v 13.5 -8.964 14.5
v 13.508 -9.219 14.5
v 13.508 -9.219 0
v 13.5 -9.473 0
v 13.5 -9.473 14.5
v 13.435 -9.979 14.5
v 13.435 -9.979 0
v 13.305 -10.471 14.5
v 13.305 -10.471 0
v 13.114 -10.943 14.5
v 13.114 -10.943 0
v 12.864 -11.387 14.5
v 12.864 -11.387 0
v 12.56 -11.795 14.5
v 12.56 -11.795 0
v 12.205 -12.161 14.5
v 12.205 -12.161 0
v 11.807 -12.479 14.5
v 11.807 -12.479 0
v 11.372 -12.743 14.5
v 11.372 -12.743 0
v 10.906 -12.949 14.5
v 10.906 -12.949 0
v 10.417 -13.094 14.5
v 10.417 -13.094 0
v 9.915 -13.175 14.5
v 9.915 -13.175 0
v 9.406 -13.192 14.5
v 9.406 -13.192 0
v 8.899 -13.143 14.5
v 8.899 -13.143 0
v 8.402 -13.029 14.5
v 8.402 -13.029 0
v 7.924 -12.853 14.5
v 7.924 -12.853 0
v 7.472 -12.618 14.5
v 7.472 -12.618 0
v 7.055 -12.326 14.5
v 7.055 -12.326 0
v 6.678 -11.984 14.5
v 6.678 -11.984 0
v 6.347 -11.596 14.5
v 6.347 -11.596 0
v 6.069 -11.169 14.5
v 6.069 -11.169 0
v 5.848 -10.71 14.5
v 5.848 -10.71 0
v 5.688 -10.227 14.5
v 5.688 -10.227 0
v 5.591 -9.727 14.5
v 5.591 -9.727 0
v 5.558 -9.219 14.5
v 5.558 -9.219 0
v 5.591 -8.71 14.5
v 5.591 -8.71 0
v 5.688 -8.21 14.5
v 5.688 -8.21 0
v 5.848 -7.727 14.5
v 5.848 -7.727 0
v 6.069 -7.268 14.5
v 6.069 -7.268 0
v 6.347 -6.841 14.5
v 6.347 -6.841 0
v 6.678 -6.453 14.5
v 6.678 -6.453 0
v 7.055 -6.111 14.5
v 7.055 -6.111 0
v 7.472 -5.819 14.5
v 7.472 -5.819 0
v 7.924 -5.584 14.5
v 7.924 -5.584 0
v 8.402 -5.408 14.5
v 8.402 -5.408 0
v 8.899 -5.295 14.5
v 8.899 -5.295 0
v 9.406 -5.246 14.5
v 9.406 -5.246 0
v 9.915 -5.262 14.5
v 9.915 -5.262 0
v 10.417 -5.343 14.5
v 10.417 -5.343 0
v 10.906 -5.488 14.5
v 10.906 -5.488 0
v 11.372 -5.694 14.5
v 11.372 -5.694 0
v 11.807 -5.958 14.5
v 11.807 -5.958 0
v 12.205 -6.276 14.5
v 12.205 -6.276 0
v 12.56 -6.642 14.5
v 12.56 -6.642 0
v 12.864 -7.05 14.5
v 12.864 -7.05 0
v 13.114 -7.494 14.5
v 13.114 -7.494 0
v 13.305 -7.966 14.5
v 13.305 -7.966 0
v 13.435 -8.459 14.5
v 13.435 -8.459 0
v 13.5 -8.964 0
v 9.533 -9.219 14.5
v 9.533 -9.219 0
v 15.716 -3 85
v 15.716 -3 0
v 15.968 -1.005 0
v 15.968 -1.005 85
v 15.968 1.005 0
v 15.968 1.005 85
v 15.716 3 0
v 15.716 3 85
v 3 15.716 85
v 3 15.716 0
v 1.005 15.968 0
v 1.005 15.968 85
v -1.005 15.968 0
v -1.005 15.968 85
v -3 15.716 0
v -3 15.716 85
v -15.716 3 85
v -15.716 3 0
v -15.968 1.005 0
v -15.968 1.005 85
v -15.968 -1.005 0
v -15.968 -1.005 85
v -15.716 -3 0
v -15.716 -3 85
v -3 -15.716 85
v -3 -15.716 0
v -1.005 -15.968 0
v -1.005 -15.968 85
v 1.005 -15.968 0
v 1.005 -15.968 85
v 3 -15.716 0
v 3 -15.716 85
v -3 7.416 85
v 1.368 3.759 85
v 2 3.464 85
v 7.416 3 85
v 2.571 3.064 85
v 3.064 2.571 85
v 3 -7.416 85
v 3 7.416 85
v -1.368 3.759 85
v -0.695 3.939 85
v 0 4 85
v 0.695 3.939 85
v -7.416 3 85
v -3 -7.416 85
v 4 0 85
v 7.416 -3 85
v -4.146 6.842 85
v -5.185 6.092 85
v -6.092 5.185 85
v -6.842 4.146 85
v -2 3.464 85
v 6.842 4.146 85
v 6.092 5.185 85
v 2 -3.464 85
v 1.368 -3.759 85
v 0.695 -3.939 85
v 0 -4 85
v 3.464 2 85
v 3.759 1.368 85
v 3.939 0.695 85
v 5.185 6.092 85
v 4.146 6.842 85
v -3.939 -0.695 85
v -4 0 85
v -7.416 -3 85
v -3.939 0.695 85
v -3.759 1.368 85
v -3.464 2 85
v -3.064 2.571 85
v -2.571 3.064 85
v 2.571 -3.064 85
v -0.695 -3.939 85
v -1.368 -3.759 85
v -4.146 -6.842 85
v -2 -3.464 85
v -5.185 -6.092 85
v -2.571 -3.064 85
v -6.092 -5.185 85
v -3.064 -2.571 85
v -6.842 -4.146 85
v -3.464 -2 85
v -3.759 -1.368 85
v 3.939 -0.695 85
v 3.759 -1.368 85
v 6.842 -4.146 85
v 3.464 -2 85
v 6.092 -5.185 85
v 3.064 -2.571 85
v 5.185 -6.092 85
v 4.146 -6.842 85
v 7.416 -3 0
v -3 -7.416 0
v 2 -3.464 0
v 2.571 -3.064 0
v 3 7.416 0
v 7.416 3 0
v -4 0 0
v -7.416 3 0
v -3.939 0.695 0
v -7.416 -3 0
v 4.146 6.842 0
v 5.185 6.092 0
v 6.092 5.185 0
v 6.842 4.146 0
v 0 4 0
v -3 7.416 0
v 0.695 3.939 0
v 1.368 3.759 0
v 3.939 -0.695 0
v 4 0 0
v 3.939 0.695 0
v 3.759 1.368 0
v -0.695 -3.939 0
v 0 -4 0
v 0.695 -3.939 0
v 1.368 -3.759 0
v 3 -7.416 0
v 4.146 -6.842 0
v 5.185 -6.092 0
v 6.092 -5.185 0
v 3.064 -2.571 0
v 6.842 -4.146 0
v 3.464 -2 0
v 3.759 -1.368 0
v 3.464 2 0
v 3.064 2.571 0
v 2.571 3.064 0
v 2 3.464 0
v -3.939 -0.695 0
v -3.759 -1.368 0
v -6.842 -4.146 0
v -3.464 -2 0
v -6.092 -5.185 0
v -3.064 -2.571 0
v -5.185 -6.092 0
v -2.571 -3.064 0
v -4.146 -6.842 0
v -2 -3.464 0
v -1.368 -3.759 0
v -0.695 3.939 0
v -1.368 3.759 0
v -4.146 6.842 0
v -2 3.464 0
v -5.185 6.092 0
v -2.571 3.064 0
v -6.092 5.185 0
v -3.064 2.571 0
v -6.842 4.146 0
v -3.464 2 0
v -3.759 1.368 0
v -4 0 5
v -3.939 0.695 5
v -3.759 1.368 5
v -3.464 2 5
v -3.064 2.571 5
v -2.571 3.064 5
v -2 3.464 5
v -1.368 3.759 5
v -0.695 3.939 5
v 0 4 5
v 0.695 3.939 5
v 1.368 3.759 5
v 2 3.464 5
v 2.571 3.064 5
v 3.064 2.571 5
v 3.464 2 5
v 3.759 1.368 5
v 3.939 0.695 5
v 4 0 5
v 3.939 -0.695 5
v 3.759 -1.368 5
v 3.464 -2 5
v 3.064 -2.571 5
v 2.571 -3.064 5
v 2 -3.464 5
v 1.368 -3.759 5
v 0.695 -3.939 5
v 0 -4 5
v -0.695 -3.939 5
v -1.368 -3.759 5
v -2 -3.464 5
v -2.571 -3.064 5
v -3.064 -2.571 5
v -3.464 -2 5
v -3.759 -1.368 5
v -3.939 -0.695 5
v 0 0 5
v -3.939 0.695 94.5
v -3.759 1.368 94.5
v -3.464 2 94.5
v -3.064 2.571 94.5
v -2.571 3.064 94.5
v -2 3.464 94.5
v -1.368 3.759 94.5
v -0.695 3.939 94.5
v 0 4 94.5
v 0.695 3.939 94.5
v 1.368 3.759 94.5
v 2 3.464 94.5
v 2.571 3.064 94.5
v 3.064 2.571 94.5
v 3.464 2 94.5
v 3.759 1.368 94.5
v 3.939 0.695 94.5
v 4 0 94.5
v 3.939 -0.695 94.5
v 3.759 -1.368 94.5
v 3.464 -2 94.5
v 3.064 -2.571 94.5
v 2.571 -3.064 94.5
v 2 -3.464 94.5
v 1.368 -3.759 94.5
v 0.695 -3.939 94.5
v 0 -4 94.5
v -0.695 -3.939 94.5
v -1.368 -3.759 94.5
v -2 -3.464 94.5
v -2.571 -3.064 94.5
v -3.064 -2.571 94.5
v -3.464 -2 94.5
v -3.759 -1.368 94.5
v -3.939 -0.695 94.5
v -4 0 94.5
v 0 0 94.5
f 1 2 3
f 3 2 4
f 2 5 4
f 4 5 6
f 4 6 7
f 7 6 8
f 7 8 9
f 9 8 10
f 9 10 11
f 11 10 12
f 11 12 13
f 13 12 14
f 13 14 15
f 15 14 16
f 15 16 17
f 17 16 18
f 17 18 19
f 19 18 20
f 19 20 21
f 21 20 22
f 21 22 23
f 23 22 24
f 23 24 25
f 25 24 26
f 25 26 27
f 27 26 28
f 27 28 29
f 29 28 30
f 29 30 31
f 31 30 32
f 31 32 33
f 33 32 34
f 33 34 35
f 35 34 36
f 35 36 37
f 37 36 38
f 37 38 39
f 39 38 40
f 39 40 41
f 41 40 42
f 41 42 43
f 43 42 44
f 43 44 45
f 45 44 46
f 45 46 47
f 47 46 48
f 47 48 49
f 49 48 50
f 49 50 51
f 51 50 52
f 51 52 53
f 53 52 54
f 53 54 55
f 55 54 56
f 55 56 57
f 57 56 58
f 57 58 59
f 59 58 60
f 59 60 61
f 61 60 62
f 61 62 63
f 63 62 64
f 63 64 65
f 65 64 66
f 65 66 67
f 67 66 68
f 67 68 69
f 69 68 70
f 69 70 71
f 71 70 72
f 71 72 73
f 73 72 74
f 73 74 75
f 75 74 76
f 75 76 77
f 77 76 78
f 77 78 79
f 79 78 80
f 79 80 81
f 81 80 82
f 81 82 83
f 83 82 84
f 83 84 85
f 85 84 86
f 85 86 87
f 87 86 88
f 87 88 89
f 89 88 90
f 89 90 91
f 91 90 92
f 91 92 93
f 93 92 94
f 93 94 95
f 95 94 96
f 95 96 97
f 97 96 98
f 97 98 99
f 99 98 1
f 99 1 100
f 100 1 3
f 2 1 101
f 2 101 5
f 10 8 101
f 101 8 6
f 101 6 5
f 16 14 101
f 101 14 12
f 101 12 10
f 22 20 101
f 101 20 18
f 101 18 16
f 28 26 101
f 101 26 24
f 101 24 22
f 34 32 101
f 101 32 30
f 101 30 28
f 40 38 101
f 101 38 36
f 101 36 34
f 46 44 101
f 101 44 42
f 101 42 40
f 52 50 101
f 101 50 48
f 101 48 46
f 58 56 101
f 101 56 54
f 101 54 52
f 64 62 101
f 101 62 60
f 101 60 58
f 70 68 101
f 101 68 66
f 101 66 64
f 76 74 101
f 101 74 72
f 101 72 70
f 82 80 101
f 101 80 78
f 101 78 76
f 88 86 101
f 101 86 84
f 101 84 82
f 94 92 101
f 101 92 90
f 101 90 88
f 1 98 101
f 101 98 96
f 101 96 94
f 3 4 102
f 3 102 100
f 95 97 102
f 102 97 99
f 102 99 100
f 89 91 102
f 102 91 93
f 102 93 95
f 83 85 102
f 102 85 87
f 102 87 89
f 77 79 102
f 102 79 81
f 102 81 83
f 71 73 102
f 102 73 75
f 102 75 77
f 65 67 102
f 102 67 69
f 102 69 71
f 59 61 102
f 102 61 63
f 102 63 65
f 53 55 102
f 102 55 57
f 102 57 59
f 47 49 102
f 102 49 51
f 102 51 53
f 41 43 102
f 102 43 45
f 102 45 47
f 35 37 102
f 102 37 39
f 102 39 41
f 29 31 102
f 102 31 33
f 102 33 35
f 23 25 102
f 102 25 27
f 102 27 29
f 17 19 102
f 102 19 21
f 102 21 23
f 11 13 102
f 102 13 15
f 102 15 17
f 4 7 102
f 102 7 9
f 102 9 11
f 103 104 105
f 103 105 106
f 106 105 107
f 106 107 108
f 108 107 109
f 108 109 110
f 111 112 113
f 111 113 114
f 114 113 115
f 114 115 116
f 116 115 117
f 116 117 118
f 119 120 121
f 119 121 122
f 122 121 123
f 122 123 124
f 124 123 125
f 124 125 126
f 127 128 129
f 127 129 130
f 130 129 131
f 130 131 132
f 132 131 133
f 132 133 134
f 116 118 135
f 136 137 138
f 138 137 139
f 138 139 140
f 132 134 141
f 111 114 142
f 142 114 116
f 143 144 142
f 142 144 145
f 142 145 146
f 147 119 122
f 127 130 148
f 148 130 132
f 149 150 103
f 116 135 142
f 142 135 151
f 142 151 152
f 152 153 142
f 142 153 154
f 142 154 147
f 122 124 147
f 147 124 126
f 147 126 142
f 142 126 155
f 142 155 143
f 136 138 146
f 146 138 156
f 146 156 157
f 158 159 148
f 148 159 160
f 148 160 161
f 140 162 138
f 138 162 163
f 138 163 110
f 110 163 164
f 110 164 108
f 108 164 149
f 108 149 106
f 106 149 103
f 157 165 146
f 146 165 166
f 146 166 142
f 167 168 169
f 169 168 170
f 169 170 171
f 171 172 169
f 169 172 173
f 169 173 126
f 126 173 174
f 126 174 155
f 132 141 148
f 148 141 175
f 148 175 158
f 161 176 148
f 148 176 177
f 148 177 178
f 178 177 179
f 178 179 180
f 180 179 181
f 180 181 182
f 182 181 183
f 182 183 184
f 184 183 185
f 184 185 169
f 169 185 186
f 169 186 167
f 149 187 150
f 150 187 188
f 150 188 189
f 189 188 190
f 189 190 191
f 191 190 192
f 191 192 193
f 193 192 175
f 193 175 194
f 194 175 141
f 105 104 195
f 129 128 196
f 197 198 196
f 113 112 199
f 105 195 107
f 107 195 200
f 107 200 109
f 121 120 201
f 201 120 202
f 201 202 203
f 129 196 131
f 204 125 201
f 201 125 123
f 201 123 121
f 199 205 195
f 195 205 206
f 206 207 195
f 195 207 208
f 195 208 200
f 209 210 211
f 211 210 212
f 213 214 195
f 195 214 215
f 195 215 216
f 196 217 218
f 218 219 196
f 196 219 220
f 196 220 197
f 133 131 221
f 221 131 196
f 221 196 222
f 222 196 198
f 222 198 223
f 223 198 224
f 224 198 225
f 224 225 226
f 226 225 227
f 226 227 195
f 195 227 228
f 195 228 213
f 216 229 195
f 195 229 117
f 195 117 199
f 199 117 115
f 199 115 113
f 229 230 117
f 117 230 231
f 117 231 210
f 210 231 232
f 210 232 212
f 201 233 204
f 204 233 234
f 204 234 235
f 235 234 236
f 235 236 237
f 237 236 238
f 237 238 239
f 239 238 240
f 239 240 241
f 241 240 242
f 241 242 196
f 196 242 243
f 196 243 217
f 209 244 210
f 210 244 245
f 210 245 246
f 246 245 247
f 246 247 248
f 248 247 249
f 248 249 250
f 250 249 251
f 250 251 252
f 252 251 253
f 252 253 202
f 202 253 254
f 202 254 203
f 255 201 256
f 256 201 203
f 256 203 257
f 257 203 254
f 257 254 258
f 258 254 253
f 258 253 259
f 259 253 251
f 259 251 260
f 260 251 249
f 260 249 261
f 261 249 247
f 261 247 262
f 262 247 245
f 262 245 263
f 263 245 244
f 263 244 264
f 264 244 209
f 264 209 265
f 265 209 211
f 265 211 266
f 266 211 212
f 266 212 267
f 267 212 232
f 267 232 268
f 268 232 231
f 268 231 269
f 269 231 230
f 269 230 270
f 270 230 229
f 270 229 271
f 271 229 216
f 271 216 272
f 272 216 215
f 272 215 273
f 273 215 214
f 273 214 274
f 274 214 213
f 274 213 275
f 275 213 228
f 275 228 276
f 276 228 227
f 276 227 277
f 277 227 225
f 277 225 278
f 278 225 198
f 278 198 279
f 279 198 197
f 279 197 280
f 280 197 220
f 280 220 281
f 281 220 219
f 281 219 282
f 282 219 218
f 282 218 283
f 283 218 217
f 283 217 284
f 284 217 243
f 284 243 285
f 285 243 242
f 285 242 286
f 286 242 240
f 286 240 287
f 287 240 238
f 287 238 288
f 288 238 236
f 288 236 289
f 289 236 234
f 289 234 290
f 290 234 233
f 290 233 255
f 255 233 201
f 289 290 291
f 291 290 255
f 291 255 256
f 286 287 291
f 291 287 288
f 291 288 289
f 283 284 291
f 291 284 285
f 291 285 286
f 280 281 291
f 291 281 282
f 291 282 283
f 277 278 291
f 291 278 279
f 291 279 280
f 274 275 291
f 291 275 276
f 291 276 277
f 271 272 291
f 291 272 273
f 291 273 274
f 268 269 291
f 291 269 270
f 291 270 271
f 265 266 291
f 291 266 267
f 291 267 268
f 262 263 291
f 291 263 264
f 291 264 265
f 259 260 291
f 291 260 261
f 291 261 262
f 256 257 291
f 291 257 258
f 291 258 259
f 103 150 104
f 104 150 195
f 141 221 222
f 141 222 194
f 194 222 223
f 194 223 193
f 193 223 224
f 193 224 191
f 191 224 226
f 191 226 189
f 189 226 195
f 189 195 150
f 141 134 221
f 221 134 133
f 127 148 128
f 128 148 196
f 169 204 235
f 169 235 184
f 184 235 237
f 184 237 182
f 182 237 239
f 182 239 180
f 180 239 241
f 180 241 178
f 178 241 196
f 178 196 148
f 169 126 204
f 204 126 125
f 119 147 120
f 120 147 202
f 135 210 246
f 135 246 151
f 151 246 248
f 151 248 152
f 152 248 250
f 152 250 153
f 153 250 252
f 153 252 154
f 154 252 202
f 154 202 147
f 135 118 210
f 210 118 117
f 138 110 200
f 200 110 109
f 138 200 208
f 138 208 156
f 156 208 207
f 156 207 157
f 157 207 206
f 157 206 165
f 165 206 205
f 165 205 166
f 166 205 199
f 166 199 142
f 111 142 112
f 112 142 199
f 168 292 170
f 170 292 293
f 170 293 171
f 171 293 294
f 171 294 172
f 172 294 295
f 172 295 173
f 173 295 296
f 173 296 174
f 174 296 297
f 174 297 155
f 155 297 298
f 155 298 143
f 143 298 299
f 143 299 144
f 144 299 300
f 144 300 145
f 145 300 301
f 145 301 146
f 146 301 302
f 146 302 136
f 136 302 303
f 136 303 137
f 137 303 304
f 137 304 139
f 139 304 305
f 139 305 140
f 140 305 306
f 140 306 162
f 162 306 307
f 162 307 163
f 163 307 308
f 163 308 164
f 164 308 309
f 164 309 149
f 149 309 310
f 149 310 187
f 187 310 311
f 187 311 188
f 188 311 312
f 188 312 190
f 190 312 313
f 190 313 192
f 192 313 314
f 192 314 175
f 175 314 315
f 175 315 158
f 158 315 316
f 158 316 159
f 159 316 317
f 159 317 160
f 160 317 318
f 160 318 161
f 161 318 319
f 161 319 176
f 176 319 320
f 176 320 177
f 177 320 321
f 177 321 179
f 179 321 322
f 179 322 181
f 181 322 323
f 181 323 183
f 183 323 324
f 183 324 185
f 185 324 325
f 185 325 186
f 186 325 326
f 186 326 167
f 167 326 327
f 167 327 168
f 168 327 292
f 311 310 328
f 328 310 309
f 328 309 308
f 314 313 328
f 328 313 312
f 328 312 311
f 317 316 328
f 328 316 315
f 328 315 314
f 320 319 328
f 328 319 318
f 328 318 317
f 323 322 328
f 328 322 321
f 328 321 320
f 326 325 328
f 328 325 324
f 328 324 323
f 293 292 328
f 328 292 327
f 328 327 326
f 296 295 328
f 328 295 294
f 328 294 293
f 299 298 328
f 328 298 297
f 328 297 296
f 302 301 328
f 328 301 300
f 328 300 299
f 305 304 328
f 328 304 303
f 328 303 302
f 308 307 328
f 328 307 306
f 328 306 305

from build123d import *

# Parameters (mm, degrees)
SKETCH1_R           = 16
BOSS_EXTRUDE1_DEPTH = 85
SKETCH3_R           = 4
CUT_EXTRUDE2_DEPTH  = 5
SKETCH4_OUTSIDE_W   = 53.26
SKETCH4_OUTSIDE_H   = 53.26
CUT_EXTRUDE3_DEPTH  = 86
SKETCH5_R           = 3.975
BOSS_EXTRUDE2_DEPTH = 14.5
SKETCH2_R           = 4
BOSS_EXTRUDE3_DEPTH = 9.5


with BuildPart() as part:
    # Sketch1 → Boss-Extrude1 (new body)
    with BuildSketch(Plane.XY):
        Circle(SKETCH1_R)
    extrude(amount=BOSS_EXTRUDE1_DEPTH)

    # Sketch3 → Cut-Extrude2 (cut)
    with BuildSketch(Plane(origin=(0, 0, 0), x_dir=(-1, 0, 0), z_dir=(0, 0, -1))):
        Circle(SKETCH3_R)
    extrude(amount=-CUT_EXTRUDE2_DEPTH, mode=Mode.SUBTRACT)

    # Sketch4 outside → Cut-Extrude3 (cut, through all)
    with BuildSketch(Plane(origin=(0, 0, 0), x_dir=(-1, 0, 0), z_dir=(0, 0, -1))):
        Rectangle(SKETCH4_OUTSIDE_W, SKETCH4_OUTSIDE_H)
        with BuildLine():
            Line((-15.716233646, 3), (-7.416198487, 3))
            ThreePointArc((-7.416198487, 3), (-5.656854249, 5.656854249), (-3, 7.416198487))
            Line((-3, 7.416198487), (-3, 15.716233646))
            ThreePointArc((-3, 15.716233646), (0, 16), (3, 15.716233646))
            Line((3, 15.716233646), (3, 7.416198487))
            ThreePointArc((3, 7.416198487), (5.656854249, 5.656854249), (7.416198487, 3))
            Line((7.416198487, 3), (15.716233646, 3))
            ThreePointArc((15.716233646, 3), (16, 0), (15.716233646, -3))
            Line((15.716233646, -3), (7.416198487, -3))
            ThreePointArc((7.416198487, -3), (5.656854249, -5.656854249), (3, -7.416198487))
            Line((3, -7.416198487), (3, -15.716233646))
            ThreePointArc((3, -15.716233646), (0, -16), (-3, -15.716233646))
            Line((-3, -15.716233646), (-3, -7.416198487))
            ThreePointArc((-3, -7.416198487), (-5.656854249, -5.656854249), (-7.416198487, -3))
            Line((-7.416198487, -3), (-15.716233646, -3))
            ThreePointArc((-15.716233646, -3), (-16, 0), (-15.716233646, 3))
        make_face(mode=Mode.SUBTRACT)
    extrude(amount=-CUT_EXTRUDE3_DEPTH, mode=Mode.SUBTRACT)

    # Sketch2 → Boss-Extrude3 (add)
    with BuildSketch(Plane.XY.offset(85)):
        Circle(SKETCH2_R)
    extrude(amount=BOSS_EXTRUDE3_DEPTH)


with BuildPart() as body_2:
    # Sketch5 → Boss-Extrude2 (new body)
    with BuildSketch(Plane.XY):
        with Locations((9.53294491, -9.218672001)):
            Circle(SKETCH5_R)
    extrude(amount=BOSS_EXTRUDE2_DEPTH)


solid = Compound([part.part, body_2.part])
